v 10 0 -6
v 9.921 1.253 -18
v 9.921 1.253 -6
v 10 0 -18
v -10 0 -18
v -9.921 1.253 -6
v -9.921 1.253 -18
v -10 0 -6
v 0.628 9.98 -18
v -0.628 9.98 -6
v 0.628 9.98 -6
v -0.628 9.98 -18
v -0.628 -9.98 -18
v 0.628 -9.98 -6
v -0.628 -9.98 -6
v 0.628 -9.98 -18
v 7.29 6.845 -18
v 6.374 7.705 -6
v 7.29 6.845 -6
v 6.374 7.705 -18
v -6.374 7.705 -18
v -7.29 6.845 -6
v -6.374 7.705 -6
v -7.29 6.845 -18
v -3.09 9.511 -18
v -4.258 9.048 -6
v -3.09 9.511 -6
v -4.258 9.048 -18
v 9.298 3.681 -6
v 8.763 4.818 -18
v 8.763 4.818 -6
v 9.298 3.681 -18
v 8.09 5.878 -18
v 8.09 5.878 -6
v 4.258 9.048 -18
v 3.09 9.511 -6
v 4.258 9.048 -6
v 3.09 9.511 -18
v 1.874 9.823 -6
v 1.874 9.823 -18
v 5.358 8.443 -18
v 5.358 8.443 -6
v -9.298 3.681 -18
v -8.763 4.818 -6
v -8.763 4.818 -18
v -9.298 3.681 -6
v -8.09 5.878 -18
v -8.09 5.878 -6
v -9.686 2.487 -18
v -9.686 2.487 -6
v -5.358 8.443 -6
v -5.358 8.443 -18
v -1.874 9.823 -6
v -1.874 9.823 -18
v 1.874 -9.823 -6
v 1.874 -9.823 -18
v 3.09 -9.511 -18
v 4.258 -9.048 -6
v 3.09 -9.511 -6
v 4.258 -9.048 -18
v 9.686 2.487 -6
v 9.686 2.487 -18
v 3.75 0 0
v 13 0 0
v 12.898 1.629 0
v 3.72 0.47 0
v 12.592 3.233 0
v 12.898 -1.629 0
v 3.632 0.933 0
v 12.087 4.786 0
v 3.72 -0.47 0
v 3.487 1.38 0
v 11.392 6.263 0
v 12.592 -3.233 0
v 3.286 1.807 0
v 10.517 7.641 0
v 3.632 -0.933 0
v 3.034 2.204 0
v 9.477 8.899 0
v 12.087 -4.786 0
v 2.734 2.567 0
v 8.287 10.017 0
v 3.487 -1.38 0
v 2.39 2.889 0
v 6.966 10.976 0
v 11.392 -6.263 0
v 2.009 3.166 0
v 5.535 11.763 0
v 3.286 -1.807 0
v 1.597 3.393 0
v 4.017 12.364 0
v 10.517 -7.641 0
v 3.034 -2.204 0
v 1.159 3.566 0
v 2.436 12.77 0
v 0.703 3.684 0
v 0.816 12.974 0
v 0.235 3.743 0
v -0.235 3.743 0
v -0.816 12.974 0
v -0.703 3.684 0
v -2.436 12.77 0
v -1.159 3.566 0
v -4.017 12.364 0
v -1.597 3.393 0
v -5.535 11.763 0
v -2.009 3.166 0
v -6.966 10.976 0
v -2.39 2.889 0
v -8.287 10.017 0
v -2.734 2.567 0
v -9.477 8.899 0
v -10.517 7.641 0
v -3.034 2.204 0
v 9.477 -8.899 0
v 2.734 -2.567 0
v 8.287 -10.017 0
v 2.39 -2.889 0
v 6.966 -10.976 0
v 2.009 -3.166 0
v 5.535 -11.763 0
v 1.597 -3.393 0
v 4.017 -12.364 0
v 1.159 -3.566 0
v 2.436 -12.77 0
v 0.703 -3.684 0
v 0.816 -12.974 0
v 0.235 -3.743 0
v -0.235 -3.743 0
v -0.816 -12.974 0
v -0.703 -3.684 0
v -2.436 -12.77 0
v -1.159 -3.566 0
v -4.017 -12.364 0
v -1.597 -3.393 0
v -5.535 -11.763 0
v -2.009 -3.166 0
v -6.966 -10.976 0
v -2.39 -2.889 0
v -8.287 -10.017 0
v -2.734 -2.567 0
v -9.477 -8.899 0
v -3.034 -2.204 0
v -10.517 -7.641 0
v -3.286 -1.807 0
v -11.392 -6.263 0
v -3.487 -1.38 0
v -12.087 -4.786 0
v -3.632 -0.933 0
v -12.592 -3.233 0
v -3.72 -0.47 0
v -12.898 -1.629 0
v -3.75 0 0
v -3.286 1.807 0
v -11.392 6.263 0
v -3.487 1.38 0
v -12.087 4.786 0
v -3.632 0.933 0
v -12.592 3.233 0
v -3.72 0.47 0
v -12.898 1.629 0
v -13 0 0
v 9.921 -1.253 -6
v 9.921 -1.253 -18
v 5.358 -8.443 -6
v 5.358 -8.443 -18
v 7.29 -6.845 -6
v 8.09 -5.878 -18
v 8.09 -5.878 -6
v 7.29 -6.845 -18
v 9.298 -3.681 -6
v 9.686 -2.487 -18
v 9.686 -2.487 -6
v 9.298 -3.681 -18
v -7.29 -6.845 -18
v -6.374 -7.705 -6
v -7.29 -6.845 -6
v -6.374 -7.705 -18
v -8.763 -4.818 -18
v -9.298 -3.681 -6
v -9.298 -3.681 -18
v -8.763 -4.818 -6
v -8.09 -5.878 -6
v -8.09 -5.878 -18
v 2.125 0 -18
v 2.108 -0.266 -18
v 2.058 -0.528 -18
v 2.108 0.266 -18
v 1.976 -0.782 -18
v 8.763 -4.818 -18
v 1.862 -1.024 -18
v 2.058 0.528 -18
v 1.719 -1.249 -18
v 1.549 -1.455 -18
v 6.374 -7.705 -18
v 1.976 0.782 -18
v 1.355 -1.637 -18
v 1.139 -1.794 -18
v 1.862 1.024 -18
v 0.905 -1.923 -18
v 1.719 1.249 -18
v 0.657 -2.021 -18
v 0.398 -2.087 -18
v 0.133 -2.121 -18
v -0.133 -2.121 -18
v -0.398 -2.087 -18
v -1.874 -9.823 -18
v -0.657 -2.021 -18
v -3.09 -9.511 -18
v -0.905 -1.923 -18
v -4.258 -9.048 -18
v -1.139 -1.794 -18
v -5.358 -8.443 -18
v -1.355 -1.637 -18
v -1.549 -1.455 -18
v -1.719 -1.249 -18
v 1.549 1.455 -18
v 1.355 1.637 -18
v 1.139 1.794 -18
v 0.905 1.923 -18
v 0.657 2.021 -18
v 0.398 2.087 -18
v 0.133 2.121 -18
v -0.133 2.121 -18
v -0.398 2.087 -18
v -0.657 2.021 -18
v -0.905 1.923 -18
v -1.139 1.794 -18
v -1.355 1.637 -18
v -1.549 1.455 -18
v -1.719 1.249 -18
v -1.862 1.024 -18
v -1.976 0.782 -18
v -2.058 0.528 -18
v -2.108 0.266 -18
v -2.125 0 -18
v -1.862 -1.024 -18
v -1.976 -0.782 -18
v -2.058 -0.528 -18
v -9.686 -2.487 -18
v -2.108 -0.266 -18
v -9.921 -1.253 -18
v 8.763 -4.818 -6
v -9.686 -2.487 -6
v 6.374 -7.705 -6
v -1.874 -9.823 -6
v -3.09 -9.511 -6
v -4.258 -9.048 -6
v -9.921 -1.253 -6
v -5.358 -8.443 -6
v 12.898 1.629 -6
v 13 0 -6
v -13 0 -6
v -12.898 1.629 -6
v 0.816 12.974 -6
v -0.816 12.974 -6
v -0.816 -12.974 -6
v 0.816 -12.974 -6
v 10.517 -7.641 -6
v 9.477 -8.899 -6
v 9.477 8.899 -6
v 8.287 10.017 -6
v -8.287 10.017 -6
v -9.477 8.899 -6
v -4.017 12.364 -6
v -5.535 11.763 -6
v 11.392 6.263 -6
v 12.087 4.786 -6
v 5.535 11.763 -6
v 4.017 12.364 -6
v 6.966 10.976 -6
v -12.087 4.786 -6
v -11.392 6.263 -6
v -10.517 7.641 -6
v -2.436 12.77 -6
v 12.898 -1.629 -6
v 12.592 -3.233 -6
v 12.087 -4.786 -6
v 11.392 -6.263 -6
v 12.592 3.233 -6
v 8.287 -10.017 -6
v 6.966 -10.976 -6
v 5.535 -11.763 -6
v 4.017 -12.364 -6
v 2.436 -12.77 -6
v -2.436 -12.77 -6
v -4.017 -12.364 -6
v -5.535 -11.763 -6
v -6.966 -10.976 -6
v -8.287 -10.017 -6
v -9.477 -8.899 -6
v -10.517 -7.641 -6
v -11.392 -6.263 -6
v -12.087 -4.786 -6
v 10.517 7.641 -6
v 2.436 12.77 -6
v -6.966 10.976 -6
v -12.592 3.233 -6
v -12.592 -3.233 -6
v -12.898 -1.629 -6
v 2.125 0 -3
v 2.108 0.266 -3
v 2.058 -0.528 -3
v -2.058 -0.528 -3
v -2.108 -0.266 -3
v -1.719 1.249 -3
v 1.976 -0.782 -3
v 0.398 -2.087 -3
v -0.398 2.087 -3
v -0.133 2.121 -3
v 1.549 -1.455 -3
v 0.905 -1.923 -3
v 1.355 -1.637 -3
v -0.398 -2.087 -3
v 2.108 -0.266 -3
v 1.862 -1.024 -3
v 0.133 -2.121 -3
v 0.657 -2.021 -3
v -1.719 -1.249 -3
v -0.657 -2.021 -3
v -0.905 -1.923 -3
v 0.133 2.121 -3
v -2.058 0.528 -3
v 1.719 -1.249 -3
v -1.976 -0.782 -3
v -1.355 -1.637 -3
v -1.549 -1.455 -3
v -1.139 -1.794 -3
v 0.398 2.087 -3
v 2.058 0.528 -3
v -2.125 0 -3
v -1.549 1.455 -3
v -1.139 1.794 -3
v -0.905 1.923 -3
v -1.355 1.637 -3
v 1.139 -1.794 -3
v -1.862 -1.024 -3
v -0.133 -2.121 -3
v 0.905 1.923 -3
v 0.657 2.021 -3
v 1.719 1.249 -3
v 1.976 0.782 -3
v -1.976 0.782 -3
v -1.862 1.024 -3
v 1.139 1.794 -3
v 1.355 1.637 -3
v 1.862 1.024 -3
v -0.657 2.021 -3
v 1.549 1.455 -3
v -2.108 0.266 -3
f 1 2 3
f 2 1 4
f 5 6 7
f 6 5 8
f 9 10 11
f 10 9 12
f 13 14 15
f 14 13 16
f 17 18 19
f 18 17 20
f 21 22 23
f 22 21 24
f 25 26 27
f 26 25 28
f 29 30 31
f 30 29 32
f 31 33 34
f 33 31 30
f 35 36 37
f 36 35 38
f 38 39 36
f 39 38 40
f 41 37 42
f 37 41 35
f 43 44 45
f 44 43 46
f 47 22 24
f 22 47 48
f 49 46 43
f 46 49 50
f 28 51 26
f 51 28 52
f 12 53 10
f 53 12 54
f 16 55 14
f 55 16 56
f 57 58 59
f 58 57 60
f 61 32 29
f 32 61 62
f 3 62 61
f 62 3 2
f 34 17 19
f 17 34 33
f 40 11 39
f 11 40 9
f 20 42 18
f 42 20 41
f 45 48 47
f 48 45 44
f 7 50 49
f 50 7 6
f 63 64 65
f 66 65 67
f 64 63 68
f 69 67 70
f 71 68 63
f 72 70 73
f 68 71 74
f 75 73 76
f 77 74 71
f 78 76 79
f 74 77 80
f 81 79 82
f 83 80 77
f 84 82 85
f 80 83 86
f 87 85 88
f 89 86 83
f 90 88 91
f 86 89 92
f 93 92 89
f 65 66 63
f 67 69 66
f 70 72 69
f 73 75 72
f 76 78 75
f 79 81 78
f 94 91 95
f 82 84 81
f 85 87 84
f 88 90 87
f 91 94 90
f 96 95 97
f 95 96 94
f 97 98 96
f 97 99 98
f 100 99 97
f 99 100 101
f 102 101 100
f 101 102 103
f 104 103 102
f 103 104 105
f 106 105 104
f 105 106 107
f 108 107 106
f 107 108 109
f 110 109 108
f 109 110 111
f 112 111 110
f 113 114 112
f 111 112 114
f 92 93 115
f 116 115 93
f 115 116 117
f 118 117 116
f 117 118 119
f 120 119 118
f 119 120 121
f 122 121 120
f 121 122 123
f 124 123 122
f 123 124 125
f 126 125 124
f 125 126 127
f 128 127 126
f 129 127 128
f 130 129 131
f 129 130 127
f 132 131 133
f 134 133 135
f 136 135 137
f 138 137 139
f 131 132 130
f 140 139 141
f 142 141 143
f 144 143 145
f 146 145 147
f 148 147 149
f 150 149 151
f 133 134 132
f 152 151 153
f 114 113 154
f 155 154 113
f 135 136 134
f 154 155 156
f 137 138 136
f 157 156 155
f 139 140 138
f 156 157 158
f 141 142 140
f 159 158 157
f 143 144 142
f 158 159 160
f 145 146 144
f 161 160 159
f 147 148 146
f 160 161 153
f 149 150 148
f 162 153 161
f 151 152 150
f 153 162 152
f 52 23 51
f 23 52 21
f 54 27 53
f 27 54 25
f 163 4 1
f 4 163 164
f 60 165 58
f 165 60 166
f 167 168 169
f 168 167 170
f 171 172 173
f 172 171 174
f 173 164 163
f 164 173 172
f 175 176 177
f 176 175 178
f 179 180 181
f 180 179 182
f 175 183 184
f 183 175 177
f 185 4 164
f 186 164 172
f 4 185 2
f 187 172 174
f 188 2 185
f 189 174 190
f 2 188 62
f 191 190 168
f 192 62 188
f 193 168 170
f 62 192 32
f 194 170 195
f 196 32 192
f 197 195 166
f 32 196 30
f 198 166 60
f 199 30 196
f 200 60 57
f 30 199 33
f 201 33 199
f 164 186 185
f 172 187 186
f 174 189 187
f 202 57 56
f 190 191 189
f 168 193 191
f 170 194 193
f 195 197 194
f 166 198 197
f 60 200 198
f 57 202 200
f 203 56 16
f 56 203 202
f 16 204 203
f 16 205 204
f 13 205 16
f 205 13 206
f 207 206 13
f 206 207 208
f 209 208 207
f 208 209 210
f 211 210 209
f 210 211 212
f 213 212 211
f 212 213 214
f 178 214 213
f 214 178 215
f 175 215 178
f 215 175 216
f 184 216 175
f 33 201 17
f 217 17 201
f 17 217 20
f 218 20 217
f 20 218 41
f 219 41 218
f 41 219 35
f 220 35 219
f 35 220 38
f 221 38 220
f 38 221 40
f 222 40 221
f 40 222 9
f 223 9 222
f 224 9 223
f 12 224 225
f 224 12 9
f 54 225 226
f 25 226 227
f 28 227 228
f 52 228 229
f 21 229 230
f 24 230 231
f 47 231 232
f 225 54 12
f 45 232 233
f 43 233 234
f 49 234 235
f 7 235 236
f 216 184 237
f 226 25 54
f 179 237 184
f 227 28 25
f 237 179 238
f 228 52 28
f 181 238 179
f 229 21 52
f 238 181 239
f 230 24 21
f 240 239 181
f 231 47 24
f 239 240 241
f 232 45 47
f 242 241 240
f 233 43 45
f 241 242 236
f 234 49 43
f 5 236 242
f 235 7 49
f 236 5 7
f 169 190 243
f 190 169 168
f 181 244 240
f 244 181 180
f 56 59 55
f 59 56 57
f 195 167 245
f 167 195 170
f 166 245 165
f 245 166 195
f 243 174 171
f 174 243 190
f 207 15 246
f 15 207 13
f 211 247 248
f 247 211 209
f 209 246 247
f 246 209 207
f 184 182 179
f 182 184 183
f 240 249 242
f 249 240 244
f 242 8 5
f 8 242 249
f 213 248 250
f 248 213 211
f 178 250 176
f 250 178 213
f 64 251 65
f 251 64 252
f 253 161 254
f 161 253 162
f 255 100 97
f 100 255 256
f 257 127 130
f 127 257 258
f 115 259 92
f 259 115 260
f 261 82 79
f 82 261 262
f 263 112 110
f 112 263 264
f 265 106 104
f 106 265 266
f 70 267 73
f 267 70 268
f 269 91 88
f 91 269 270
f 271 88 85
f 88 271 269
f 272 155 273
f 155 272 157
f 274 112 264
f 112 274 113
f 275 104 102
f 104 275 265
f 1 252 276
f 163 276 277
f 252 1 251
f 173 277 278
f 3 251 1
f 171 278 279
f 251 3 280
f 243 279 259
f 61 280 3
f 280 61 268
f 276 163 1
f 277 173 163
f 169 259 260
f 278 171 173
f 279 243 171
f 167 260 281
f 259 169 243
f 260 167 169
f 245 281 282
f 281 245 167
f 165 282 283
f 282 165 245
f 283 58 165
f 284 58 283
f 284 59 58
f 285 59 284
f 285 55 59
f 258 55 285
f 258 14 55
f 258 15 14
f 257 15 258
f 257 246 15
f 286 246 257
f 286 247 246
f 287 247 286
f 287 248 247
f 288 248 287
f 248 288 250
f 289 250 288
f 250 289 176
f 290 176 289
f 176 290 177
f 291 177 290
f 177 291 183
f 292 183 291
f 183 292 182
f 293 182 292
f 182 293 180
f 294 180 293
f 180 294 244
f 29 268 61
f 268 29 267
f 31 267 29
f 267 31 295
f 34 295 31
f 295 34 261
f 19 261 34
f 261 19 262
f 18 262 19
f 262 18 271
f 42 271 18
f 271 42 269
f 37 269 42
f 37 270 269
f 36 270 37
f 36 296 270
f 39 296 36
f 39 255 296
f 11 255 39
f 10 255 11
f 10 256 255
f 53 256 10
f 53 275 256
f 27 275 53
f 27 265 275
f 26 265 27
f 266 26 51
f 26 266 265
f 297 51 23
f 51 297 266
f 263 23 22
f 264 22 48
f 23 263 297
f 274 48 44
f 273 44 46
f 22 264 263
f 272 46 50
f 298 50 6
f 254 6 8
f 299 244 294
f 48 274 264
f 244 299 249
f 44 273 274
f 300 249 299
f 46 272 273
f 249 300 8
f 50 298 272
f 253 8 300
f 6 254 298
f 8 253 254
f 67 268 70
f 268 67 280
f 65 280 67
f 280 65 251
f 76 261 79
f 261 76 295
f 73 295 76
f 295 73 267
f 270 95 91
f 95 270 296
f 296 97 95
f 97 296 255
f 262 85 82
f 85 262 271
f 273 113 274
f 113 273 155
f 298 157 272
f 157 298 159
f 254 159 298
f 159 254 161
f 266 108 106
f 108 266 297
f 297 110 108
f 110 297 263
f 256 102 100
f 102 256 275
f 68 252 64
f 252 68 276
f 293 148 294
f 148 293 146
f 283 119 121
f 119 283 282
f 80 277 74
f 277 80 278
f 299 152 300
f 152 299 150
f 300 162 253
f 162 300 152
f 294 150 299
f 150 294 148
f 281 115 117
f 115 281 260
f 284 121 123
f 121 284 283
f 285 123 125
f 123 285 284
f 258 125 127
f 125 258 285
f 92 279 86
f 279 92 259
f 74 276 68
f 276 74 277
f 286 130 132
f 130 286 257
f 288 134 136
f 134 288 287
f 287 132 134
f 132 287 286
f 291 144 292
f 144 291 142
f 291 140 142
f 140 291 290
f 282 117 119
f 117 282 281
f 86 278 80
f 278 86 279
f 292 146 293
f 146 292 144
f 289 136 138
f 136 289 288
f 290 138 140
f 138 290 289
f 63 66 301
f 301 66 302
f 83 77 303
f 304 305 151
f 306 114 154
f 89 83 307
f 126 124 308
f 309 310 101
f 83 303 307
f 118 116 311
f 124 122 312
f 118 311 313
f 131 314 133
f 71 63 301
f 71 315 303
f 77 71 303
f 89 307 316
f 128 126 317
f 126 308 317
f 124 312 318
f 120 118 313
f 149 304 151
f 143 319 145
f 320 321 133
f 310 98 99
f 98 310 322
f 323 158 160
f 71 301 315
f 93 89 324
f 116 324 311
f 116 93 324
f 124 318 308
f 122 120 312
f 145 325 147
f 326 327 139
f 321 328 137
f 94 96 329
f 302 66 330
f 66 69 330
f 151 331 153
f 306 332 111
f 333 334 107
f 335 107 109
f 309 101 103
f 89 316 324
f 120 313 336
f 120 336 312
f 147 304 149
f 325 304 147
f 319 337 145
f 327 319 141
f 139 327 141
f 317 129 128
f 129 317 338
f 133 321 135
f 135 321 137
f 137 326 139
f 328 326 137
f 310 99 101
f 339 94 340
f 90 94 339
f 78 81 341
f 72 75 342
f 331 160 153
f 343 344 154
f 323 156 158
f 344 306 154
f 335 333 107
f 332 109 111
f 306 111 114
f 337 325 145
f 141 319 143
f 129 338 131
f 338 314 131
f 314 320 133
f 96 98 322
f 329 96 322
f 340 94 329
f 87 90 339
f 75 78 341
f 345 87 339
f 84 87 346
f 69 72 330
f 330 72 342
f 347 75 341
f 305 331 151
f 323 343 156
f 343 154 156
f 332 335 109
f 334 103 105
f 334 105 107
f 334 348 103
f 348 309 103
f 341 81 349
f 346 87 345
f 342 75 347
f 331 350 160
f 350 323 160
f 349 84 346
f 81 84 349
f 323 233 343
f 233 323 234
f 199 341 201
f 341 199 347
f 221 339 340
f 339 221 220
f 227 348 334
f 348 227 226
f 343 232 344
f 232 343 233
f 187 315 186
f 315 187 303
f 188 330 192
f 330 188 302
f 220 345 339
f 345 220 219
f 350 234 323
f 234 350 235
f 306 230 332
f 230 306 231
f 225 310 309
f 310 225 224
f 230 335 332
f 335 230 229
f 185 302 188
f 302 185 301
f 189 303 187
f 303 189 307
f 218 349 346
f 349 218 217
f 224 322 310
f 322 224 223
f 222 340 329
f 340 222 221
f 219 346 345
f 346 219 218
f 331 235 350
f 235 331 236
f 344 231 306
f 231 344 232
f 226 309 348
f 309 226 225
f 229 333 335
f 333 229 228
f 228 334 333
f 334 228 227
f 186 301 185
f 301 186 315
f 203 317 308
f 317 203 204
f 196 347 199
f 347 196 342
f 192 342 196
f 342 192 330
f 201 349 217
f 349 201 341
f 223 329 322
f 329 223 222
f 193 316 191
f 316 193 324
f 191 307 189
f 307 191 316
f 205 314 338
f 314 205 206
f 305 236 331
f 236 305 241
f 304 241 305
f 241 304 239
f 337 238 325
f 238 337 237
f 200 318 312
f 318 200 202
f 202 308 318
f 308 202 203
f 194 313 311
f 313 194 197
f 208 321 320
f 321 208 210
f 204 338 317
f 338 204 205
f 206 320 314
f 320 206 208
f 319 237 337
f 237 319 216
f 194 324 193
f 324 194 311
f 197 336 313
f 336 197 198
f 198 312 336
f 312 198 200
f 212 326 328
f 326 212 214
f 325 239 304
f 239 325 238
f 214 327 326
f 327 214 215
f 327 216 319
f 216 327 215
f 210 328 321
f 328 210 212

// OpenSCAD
$fn = 50;


difference() {
	union() {
		translate(v = [0, 0, -18.0000000000]) {
			cylinder(h = 18, r = 10.0000000000);
		}
		translate(v = [0, 0, -6.0000000000]) {
			cylinder(h = 6, r = 13.0000000000);
		}
	}
	union() {
		translate(v = [0, 0, 0]) {
			rotate(a = [0, 0, 0]) {
				difference() {
					union() {
						#translate(v = [0, 0, -18.0000000000]) {
							cylinder(h = 18, r = 2.0000000000);
						}
						#translate(v = [0, 0, -3]) {
							cylinder(h = 3, r = 10.0000000000, r1 = 2.1250000000, r2 = 3.7500000000);
						}
						#translate(v = [0, 0, -18.0000000000]) {
							cylinder(h = 18, r = 2.1250000000);
						}
						#translate(v = [0, 0, -18.0000000000]) {
							cylinder(h = 18, r = 2.0000000000);
						}
					}
					union();
				}
			}
		}
	}
}
